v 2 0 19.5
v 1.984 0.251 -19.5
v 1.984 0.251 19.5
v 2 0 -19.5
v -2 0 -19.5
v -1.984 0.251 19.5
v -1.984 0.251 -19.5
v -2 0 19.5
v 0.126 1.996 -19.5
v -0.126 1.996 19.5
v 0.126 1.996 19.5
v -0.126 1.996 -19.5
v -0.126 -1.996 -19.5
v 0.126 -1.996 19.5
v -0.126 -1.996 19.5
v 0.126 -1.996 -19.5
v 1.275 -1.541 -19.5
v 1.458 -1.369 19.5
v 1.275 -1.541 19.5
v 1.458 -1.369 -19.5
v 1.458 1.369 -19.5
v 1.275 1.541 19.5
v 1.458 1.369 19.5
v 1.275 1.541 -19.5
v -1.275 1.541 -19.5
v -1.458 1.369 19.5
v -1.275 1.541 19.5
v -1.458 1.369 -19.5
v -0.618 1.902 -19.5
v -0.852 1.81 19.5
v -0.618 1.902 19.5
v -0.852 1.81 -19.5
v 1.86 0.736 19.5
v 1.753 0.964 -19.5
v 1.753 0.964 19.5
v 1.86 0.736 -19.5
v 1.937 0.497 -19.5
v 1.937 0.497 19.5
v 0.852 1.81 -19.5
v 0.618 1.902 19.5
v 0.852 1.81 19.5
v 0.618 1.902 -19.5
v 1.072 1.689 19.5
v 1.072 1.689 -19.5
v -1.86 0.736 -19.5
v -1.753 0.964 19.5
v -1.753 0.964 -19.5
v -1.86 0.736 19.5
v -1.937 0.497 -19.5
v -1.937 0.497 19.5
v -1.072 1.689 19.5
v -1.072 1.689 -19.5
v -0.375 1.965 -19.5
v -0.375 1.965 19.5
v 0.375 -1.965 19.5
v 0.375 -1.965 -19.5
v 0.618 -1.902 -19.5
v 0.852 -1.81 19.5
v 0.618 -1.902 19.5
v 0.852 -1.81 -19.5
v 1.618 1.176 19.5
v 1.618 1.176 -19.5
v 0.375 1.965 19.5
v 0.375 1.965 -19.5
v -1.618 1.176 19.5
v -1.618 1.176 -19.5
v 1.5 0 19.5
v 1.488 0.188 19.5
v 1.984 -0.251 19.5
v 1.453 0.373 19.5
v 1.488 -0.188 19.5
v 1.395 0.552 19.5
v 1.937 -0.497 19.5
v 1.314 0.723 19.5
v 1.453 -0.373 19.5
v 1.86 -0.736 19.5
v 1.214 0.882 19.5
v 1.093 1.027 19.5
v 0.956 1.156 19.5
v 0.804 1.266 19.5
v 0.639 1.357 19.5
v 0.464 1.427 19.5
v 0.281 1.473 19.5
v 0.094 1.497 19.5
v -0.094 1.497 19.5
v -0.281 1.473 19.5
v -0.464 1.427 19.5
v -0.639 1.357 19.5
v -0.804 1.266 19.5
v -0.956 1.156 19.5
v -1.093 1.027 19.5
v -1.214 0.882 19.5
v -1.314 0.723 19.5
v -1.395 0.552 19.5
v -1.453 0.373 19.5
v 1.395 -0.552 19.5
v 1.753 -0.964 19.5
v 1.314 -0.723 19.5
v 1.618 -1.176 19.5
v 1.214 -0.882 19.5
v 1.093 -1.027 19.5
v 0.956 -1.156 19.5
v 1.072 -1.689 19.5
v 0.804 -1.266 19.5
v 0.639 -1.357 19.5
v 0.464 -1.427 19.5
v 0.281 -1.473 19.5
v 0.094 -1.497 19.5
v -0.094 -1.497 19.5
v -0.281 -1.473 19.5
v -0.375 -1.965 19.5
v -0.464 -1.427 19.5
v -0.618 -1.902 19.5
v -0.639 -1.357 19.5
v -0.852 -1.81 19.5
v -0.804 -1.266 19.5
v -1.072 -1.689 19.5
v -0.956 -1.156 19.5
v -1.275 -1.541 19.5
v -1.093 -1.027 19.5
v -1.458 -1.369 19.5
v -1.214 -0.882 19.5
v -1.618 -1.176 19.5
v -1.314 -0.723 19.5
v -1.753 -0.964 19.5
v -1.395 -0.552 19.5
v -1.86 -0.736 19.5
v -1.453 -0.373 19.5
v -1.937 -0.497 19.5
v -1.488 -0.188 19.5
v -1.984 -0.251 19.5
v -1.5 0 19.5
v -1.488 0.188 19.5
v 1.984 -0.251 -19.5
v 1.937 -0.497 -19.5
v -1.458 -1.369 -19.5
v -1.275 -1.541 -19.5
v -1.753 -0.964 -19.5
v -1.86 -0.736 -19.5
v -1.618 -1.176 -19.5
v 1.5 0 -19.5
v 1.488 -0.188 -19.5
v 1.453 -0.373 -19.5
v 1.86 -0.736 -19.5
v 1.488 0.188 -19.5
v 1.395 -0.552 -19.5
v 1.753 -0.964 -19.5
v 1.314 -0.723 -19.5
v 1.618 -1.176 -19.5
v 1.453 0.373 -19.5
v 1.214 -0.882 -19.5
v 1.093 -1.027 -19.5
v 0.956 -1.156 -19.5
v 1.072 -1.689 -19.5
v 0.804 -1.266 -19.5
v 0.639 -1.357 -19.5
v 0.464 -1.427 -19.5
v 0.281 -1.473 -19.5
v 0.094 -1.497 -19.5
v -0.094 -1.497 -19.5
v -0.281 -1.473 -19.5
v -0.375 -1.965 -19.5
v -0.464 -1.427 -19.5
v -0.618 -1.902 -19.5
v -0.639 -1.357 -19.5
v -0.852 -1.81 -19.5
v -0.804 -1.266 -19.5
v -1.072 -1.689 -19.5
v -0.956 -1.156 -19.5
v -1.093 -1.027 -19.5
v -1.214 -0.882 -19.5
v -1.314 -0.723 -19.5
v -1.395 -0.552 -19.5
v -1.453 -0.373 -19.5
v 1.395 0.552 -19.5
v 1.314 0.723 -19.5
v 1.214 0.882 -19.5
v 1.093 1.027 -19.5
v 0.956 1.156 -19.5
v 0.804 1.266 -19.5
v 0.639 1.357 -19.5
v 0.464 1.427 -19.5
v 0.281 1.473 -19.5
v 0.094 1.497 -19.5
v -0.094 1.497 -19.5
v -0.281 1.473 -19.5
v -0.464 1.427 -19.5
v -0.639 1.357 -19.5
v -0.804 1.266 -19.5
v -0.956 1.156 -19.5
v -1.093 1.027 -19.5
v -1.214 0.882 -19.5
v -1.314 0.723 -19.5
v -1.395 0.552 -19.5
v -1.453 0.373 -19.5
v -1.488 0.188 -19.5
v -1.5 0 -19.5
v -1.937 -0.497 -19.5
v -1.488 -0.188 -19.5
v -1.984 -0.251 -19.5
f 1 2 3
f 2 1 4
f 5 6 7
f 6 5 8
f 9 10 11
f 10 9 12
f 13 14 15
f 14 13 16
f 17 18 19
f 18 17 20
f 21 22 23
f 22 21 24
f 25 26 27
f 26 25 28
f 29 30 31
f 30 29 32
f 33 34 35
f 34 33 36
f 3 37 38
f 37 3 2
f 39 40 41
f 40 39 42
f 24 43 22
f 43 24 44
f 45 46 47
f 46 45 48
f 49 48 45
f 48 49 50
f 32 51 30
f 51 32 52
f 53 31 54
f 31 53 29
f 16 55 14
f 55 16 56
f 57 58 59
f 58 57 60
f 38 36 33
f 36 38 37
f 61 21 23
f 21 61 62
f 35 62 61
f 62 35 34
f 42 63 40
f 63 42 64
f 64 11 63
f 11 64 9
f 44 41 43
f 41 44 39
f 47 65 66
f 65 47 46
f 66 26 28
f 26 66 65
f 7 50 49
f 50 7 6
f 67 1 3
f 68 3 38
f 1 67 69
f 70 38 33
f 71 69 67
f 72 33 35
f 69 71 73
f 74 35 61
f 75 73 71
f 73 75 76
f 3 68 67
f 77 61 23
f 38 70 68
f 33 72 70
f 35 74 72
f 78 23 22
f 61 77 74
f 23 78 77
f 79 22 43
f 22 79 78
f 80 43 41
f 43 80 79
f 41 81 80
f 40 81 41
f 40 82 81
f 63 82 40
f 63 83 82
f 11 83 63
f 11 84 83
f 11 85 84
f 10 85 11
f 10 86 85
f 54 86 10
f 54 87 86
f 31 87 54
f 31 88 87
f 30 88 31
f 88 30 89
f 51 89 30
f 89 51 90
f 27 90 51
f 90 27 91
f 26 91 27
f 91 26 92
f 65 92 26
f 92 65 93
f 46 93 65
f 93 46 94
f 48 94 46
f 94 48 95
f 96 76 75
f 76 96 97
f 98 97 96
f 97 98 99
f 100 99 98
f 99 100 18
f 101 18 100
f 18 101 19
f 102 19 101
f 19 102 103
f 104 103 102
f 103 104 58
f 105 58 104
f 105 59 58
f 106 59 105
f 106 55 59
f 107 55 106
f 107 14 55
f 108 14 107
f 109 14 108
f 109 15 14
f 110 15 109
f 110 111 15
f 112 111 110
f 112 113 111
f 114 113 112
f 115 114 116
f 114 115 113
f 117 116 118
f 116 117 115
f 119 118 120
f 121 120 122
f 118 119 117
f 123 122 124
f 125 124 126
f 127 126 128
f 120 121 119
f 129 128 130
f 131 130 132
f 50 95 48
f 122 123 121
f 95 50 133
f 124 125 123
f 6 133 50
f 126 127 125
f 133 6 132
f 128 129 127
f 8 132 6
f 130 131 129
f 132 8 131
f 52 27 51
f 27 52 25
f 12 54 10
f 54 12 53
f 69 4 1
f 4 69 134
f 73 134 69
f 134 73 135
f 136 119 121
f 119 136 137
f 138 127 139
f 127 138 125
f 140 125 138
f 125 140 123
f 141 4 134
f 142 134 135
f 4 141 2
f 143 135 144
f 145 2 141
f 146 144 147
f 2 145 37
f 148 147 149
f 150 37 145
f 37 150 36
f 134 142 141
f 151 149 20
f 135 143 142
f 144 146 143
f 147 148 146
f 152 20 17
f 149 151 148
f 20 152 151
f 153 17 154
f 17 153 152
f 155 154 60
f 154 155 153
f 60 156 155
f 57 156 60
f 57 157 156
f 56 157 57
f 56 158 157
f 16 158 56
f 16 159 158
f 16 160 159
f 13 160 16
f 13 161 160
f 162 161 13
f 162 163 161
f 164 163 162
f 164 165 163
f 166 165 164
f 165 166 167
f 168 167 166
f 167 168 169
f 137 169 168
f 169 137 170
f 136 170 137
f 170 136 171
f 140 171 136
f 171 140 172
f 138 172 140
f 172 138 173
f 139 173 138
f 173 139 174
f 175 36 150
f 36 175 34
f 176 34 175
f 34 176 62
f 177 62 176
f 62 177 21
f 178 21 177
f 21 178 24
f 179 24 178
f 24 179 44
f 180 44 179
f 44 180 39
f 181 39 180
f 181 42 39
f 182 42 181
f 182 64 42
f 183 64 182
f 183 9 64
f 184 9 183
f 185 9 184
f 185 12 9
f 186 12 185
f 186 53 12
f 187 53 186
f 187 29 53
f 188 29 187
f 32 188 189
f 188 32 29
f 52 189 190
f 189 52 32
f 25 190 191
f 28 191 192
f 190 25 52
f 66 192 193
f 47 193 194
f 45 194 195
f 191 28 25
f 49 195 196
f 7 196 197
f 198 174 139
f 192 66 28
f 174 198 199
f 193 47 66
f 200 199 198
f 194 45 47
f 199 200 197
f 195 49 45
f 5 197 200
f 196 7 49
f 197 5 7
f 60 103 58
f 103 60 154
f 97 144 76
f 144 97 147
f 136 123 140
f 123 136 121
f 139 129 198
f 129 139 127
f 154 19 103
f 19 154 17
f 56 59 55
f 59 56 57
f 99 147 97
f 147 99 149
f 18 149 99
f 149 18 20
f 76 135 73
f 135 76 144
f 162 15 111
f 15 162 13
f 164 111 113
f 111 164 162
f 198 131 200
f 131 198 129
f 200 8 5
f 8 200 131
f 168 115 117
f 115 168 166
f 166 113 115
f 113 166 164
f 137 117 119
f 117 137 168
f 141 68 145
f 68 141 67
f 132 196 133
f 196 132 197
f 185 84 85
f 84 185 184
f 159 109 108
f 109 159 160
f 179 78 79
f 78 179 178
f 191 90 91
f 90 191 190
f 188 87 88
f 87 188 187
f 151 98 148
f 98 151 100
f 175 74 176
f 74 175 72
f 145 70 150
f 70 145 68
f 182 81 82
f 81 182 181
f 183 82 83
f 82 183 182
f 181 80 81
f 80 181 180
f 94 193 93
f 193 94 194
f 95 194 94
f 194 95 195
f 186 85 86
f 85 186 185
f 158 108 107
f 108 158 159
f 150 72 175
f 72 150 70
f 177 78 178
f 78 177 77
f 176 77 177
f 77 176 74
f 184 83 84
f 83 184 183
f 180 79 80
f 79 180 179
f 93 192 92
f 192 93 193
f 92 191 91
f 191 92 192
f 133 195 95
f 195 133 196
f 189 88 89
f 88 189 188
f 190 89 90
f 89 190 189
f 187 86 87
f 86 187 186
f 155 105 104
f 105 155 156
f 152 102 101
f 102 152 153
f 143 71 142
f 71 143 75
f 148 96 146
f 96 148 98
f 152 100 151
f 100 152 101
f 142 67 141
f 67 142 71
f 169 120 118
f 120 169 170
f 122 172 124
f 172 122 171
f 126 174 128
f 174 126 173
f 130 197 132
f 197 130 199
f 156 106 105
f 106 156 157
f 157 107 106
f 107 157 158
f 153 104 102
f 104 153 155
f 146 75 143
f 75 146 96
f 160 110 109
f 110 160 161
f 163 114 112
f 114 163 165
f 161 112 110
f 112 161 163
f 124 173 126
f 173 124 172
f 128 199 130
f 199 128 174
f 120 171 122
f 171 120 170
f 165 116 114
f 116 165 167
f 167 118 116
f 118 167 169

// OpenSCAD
$fn = 50;


difference() {
	union() {
		translate(v = [0, 0, -19.5000000000]) {
			cylinder(h = 39, r = 2.0000000000);
		}
	}
	union() {
		translate(v = [0, 0, -100.0000000000]) {
			cylinder(h = 200, r = 1.5000000000);
		}
	}
}
